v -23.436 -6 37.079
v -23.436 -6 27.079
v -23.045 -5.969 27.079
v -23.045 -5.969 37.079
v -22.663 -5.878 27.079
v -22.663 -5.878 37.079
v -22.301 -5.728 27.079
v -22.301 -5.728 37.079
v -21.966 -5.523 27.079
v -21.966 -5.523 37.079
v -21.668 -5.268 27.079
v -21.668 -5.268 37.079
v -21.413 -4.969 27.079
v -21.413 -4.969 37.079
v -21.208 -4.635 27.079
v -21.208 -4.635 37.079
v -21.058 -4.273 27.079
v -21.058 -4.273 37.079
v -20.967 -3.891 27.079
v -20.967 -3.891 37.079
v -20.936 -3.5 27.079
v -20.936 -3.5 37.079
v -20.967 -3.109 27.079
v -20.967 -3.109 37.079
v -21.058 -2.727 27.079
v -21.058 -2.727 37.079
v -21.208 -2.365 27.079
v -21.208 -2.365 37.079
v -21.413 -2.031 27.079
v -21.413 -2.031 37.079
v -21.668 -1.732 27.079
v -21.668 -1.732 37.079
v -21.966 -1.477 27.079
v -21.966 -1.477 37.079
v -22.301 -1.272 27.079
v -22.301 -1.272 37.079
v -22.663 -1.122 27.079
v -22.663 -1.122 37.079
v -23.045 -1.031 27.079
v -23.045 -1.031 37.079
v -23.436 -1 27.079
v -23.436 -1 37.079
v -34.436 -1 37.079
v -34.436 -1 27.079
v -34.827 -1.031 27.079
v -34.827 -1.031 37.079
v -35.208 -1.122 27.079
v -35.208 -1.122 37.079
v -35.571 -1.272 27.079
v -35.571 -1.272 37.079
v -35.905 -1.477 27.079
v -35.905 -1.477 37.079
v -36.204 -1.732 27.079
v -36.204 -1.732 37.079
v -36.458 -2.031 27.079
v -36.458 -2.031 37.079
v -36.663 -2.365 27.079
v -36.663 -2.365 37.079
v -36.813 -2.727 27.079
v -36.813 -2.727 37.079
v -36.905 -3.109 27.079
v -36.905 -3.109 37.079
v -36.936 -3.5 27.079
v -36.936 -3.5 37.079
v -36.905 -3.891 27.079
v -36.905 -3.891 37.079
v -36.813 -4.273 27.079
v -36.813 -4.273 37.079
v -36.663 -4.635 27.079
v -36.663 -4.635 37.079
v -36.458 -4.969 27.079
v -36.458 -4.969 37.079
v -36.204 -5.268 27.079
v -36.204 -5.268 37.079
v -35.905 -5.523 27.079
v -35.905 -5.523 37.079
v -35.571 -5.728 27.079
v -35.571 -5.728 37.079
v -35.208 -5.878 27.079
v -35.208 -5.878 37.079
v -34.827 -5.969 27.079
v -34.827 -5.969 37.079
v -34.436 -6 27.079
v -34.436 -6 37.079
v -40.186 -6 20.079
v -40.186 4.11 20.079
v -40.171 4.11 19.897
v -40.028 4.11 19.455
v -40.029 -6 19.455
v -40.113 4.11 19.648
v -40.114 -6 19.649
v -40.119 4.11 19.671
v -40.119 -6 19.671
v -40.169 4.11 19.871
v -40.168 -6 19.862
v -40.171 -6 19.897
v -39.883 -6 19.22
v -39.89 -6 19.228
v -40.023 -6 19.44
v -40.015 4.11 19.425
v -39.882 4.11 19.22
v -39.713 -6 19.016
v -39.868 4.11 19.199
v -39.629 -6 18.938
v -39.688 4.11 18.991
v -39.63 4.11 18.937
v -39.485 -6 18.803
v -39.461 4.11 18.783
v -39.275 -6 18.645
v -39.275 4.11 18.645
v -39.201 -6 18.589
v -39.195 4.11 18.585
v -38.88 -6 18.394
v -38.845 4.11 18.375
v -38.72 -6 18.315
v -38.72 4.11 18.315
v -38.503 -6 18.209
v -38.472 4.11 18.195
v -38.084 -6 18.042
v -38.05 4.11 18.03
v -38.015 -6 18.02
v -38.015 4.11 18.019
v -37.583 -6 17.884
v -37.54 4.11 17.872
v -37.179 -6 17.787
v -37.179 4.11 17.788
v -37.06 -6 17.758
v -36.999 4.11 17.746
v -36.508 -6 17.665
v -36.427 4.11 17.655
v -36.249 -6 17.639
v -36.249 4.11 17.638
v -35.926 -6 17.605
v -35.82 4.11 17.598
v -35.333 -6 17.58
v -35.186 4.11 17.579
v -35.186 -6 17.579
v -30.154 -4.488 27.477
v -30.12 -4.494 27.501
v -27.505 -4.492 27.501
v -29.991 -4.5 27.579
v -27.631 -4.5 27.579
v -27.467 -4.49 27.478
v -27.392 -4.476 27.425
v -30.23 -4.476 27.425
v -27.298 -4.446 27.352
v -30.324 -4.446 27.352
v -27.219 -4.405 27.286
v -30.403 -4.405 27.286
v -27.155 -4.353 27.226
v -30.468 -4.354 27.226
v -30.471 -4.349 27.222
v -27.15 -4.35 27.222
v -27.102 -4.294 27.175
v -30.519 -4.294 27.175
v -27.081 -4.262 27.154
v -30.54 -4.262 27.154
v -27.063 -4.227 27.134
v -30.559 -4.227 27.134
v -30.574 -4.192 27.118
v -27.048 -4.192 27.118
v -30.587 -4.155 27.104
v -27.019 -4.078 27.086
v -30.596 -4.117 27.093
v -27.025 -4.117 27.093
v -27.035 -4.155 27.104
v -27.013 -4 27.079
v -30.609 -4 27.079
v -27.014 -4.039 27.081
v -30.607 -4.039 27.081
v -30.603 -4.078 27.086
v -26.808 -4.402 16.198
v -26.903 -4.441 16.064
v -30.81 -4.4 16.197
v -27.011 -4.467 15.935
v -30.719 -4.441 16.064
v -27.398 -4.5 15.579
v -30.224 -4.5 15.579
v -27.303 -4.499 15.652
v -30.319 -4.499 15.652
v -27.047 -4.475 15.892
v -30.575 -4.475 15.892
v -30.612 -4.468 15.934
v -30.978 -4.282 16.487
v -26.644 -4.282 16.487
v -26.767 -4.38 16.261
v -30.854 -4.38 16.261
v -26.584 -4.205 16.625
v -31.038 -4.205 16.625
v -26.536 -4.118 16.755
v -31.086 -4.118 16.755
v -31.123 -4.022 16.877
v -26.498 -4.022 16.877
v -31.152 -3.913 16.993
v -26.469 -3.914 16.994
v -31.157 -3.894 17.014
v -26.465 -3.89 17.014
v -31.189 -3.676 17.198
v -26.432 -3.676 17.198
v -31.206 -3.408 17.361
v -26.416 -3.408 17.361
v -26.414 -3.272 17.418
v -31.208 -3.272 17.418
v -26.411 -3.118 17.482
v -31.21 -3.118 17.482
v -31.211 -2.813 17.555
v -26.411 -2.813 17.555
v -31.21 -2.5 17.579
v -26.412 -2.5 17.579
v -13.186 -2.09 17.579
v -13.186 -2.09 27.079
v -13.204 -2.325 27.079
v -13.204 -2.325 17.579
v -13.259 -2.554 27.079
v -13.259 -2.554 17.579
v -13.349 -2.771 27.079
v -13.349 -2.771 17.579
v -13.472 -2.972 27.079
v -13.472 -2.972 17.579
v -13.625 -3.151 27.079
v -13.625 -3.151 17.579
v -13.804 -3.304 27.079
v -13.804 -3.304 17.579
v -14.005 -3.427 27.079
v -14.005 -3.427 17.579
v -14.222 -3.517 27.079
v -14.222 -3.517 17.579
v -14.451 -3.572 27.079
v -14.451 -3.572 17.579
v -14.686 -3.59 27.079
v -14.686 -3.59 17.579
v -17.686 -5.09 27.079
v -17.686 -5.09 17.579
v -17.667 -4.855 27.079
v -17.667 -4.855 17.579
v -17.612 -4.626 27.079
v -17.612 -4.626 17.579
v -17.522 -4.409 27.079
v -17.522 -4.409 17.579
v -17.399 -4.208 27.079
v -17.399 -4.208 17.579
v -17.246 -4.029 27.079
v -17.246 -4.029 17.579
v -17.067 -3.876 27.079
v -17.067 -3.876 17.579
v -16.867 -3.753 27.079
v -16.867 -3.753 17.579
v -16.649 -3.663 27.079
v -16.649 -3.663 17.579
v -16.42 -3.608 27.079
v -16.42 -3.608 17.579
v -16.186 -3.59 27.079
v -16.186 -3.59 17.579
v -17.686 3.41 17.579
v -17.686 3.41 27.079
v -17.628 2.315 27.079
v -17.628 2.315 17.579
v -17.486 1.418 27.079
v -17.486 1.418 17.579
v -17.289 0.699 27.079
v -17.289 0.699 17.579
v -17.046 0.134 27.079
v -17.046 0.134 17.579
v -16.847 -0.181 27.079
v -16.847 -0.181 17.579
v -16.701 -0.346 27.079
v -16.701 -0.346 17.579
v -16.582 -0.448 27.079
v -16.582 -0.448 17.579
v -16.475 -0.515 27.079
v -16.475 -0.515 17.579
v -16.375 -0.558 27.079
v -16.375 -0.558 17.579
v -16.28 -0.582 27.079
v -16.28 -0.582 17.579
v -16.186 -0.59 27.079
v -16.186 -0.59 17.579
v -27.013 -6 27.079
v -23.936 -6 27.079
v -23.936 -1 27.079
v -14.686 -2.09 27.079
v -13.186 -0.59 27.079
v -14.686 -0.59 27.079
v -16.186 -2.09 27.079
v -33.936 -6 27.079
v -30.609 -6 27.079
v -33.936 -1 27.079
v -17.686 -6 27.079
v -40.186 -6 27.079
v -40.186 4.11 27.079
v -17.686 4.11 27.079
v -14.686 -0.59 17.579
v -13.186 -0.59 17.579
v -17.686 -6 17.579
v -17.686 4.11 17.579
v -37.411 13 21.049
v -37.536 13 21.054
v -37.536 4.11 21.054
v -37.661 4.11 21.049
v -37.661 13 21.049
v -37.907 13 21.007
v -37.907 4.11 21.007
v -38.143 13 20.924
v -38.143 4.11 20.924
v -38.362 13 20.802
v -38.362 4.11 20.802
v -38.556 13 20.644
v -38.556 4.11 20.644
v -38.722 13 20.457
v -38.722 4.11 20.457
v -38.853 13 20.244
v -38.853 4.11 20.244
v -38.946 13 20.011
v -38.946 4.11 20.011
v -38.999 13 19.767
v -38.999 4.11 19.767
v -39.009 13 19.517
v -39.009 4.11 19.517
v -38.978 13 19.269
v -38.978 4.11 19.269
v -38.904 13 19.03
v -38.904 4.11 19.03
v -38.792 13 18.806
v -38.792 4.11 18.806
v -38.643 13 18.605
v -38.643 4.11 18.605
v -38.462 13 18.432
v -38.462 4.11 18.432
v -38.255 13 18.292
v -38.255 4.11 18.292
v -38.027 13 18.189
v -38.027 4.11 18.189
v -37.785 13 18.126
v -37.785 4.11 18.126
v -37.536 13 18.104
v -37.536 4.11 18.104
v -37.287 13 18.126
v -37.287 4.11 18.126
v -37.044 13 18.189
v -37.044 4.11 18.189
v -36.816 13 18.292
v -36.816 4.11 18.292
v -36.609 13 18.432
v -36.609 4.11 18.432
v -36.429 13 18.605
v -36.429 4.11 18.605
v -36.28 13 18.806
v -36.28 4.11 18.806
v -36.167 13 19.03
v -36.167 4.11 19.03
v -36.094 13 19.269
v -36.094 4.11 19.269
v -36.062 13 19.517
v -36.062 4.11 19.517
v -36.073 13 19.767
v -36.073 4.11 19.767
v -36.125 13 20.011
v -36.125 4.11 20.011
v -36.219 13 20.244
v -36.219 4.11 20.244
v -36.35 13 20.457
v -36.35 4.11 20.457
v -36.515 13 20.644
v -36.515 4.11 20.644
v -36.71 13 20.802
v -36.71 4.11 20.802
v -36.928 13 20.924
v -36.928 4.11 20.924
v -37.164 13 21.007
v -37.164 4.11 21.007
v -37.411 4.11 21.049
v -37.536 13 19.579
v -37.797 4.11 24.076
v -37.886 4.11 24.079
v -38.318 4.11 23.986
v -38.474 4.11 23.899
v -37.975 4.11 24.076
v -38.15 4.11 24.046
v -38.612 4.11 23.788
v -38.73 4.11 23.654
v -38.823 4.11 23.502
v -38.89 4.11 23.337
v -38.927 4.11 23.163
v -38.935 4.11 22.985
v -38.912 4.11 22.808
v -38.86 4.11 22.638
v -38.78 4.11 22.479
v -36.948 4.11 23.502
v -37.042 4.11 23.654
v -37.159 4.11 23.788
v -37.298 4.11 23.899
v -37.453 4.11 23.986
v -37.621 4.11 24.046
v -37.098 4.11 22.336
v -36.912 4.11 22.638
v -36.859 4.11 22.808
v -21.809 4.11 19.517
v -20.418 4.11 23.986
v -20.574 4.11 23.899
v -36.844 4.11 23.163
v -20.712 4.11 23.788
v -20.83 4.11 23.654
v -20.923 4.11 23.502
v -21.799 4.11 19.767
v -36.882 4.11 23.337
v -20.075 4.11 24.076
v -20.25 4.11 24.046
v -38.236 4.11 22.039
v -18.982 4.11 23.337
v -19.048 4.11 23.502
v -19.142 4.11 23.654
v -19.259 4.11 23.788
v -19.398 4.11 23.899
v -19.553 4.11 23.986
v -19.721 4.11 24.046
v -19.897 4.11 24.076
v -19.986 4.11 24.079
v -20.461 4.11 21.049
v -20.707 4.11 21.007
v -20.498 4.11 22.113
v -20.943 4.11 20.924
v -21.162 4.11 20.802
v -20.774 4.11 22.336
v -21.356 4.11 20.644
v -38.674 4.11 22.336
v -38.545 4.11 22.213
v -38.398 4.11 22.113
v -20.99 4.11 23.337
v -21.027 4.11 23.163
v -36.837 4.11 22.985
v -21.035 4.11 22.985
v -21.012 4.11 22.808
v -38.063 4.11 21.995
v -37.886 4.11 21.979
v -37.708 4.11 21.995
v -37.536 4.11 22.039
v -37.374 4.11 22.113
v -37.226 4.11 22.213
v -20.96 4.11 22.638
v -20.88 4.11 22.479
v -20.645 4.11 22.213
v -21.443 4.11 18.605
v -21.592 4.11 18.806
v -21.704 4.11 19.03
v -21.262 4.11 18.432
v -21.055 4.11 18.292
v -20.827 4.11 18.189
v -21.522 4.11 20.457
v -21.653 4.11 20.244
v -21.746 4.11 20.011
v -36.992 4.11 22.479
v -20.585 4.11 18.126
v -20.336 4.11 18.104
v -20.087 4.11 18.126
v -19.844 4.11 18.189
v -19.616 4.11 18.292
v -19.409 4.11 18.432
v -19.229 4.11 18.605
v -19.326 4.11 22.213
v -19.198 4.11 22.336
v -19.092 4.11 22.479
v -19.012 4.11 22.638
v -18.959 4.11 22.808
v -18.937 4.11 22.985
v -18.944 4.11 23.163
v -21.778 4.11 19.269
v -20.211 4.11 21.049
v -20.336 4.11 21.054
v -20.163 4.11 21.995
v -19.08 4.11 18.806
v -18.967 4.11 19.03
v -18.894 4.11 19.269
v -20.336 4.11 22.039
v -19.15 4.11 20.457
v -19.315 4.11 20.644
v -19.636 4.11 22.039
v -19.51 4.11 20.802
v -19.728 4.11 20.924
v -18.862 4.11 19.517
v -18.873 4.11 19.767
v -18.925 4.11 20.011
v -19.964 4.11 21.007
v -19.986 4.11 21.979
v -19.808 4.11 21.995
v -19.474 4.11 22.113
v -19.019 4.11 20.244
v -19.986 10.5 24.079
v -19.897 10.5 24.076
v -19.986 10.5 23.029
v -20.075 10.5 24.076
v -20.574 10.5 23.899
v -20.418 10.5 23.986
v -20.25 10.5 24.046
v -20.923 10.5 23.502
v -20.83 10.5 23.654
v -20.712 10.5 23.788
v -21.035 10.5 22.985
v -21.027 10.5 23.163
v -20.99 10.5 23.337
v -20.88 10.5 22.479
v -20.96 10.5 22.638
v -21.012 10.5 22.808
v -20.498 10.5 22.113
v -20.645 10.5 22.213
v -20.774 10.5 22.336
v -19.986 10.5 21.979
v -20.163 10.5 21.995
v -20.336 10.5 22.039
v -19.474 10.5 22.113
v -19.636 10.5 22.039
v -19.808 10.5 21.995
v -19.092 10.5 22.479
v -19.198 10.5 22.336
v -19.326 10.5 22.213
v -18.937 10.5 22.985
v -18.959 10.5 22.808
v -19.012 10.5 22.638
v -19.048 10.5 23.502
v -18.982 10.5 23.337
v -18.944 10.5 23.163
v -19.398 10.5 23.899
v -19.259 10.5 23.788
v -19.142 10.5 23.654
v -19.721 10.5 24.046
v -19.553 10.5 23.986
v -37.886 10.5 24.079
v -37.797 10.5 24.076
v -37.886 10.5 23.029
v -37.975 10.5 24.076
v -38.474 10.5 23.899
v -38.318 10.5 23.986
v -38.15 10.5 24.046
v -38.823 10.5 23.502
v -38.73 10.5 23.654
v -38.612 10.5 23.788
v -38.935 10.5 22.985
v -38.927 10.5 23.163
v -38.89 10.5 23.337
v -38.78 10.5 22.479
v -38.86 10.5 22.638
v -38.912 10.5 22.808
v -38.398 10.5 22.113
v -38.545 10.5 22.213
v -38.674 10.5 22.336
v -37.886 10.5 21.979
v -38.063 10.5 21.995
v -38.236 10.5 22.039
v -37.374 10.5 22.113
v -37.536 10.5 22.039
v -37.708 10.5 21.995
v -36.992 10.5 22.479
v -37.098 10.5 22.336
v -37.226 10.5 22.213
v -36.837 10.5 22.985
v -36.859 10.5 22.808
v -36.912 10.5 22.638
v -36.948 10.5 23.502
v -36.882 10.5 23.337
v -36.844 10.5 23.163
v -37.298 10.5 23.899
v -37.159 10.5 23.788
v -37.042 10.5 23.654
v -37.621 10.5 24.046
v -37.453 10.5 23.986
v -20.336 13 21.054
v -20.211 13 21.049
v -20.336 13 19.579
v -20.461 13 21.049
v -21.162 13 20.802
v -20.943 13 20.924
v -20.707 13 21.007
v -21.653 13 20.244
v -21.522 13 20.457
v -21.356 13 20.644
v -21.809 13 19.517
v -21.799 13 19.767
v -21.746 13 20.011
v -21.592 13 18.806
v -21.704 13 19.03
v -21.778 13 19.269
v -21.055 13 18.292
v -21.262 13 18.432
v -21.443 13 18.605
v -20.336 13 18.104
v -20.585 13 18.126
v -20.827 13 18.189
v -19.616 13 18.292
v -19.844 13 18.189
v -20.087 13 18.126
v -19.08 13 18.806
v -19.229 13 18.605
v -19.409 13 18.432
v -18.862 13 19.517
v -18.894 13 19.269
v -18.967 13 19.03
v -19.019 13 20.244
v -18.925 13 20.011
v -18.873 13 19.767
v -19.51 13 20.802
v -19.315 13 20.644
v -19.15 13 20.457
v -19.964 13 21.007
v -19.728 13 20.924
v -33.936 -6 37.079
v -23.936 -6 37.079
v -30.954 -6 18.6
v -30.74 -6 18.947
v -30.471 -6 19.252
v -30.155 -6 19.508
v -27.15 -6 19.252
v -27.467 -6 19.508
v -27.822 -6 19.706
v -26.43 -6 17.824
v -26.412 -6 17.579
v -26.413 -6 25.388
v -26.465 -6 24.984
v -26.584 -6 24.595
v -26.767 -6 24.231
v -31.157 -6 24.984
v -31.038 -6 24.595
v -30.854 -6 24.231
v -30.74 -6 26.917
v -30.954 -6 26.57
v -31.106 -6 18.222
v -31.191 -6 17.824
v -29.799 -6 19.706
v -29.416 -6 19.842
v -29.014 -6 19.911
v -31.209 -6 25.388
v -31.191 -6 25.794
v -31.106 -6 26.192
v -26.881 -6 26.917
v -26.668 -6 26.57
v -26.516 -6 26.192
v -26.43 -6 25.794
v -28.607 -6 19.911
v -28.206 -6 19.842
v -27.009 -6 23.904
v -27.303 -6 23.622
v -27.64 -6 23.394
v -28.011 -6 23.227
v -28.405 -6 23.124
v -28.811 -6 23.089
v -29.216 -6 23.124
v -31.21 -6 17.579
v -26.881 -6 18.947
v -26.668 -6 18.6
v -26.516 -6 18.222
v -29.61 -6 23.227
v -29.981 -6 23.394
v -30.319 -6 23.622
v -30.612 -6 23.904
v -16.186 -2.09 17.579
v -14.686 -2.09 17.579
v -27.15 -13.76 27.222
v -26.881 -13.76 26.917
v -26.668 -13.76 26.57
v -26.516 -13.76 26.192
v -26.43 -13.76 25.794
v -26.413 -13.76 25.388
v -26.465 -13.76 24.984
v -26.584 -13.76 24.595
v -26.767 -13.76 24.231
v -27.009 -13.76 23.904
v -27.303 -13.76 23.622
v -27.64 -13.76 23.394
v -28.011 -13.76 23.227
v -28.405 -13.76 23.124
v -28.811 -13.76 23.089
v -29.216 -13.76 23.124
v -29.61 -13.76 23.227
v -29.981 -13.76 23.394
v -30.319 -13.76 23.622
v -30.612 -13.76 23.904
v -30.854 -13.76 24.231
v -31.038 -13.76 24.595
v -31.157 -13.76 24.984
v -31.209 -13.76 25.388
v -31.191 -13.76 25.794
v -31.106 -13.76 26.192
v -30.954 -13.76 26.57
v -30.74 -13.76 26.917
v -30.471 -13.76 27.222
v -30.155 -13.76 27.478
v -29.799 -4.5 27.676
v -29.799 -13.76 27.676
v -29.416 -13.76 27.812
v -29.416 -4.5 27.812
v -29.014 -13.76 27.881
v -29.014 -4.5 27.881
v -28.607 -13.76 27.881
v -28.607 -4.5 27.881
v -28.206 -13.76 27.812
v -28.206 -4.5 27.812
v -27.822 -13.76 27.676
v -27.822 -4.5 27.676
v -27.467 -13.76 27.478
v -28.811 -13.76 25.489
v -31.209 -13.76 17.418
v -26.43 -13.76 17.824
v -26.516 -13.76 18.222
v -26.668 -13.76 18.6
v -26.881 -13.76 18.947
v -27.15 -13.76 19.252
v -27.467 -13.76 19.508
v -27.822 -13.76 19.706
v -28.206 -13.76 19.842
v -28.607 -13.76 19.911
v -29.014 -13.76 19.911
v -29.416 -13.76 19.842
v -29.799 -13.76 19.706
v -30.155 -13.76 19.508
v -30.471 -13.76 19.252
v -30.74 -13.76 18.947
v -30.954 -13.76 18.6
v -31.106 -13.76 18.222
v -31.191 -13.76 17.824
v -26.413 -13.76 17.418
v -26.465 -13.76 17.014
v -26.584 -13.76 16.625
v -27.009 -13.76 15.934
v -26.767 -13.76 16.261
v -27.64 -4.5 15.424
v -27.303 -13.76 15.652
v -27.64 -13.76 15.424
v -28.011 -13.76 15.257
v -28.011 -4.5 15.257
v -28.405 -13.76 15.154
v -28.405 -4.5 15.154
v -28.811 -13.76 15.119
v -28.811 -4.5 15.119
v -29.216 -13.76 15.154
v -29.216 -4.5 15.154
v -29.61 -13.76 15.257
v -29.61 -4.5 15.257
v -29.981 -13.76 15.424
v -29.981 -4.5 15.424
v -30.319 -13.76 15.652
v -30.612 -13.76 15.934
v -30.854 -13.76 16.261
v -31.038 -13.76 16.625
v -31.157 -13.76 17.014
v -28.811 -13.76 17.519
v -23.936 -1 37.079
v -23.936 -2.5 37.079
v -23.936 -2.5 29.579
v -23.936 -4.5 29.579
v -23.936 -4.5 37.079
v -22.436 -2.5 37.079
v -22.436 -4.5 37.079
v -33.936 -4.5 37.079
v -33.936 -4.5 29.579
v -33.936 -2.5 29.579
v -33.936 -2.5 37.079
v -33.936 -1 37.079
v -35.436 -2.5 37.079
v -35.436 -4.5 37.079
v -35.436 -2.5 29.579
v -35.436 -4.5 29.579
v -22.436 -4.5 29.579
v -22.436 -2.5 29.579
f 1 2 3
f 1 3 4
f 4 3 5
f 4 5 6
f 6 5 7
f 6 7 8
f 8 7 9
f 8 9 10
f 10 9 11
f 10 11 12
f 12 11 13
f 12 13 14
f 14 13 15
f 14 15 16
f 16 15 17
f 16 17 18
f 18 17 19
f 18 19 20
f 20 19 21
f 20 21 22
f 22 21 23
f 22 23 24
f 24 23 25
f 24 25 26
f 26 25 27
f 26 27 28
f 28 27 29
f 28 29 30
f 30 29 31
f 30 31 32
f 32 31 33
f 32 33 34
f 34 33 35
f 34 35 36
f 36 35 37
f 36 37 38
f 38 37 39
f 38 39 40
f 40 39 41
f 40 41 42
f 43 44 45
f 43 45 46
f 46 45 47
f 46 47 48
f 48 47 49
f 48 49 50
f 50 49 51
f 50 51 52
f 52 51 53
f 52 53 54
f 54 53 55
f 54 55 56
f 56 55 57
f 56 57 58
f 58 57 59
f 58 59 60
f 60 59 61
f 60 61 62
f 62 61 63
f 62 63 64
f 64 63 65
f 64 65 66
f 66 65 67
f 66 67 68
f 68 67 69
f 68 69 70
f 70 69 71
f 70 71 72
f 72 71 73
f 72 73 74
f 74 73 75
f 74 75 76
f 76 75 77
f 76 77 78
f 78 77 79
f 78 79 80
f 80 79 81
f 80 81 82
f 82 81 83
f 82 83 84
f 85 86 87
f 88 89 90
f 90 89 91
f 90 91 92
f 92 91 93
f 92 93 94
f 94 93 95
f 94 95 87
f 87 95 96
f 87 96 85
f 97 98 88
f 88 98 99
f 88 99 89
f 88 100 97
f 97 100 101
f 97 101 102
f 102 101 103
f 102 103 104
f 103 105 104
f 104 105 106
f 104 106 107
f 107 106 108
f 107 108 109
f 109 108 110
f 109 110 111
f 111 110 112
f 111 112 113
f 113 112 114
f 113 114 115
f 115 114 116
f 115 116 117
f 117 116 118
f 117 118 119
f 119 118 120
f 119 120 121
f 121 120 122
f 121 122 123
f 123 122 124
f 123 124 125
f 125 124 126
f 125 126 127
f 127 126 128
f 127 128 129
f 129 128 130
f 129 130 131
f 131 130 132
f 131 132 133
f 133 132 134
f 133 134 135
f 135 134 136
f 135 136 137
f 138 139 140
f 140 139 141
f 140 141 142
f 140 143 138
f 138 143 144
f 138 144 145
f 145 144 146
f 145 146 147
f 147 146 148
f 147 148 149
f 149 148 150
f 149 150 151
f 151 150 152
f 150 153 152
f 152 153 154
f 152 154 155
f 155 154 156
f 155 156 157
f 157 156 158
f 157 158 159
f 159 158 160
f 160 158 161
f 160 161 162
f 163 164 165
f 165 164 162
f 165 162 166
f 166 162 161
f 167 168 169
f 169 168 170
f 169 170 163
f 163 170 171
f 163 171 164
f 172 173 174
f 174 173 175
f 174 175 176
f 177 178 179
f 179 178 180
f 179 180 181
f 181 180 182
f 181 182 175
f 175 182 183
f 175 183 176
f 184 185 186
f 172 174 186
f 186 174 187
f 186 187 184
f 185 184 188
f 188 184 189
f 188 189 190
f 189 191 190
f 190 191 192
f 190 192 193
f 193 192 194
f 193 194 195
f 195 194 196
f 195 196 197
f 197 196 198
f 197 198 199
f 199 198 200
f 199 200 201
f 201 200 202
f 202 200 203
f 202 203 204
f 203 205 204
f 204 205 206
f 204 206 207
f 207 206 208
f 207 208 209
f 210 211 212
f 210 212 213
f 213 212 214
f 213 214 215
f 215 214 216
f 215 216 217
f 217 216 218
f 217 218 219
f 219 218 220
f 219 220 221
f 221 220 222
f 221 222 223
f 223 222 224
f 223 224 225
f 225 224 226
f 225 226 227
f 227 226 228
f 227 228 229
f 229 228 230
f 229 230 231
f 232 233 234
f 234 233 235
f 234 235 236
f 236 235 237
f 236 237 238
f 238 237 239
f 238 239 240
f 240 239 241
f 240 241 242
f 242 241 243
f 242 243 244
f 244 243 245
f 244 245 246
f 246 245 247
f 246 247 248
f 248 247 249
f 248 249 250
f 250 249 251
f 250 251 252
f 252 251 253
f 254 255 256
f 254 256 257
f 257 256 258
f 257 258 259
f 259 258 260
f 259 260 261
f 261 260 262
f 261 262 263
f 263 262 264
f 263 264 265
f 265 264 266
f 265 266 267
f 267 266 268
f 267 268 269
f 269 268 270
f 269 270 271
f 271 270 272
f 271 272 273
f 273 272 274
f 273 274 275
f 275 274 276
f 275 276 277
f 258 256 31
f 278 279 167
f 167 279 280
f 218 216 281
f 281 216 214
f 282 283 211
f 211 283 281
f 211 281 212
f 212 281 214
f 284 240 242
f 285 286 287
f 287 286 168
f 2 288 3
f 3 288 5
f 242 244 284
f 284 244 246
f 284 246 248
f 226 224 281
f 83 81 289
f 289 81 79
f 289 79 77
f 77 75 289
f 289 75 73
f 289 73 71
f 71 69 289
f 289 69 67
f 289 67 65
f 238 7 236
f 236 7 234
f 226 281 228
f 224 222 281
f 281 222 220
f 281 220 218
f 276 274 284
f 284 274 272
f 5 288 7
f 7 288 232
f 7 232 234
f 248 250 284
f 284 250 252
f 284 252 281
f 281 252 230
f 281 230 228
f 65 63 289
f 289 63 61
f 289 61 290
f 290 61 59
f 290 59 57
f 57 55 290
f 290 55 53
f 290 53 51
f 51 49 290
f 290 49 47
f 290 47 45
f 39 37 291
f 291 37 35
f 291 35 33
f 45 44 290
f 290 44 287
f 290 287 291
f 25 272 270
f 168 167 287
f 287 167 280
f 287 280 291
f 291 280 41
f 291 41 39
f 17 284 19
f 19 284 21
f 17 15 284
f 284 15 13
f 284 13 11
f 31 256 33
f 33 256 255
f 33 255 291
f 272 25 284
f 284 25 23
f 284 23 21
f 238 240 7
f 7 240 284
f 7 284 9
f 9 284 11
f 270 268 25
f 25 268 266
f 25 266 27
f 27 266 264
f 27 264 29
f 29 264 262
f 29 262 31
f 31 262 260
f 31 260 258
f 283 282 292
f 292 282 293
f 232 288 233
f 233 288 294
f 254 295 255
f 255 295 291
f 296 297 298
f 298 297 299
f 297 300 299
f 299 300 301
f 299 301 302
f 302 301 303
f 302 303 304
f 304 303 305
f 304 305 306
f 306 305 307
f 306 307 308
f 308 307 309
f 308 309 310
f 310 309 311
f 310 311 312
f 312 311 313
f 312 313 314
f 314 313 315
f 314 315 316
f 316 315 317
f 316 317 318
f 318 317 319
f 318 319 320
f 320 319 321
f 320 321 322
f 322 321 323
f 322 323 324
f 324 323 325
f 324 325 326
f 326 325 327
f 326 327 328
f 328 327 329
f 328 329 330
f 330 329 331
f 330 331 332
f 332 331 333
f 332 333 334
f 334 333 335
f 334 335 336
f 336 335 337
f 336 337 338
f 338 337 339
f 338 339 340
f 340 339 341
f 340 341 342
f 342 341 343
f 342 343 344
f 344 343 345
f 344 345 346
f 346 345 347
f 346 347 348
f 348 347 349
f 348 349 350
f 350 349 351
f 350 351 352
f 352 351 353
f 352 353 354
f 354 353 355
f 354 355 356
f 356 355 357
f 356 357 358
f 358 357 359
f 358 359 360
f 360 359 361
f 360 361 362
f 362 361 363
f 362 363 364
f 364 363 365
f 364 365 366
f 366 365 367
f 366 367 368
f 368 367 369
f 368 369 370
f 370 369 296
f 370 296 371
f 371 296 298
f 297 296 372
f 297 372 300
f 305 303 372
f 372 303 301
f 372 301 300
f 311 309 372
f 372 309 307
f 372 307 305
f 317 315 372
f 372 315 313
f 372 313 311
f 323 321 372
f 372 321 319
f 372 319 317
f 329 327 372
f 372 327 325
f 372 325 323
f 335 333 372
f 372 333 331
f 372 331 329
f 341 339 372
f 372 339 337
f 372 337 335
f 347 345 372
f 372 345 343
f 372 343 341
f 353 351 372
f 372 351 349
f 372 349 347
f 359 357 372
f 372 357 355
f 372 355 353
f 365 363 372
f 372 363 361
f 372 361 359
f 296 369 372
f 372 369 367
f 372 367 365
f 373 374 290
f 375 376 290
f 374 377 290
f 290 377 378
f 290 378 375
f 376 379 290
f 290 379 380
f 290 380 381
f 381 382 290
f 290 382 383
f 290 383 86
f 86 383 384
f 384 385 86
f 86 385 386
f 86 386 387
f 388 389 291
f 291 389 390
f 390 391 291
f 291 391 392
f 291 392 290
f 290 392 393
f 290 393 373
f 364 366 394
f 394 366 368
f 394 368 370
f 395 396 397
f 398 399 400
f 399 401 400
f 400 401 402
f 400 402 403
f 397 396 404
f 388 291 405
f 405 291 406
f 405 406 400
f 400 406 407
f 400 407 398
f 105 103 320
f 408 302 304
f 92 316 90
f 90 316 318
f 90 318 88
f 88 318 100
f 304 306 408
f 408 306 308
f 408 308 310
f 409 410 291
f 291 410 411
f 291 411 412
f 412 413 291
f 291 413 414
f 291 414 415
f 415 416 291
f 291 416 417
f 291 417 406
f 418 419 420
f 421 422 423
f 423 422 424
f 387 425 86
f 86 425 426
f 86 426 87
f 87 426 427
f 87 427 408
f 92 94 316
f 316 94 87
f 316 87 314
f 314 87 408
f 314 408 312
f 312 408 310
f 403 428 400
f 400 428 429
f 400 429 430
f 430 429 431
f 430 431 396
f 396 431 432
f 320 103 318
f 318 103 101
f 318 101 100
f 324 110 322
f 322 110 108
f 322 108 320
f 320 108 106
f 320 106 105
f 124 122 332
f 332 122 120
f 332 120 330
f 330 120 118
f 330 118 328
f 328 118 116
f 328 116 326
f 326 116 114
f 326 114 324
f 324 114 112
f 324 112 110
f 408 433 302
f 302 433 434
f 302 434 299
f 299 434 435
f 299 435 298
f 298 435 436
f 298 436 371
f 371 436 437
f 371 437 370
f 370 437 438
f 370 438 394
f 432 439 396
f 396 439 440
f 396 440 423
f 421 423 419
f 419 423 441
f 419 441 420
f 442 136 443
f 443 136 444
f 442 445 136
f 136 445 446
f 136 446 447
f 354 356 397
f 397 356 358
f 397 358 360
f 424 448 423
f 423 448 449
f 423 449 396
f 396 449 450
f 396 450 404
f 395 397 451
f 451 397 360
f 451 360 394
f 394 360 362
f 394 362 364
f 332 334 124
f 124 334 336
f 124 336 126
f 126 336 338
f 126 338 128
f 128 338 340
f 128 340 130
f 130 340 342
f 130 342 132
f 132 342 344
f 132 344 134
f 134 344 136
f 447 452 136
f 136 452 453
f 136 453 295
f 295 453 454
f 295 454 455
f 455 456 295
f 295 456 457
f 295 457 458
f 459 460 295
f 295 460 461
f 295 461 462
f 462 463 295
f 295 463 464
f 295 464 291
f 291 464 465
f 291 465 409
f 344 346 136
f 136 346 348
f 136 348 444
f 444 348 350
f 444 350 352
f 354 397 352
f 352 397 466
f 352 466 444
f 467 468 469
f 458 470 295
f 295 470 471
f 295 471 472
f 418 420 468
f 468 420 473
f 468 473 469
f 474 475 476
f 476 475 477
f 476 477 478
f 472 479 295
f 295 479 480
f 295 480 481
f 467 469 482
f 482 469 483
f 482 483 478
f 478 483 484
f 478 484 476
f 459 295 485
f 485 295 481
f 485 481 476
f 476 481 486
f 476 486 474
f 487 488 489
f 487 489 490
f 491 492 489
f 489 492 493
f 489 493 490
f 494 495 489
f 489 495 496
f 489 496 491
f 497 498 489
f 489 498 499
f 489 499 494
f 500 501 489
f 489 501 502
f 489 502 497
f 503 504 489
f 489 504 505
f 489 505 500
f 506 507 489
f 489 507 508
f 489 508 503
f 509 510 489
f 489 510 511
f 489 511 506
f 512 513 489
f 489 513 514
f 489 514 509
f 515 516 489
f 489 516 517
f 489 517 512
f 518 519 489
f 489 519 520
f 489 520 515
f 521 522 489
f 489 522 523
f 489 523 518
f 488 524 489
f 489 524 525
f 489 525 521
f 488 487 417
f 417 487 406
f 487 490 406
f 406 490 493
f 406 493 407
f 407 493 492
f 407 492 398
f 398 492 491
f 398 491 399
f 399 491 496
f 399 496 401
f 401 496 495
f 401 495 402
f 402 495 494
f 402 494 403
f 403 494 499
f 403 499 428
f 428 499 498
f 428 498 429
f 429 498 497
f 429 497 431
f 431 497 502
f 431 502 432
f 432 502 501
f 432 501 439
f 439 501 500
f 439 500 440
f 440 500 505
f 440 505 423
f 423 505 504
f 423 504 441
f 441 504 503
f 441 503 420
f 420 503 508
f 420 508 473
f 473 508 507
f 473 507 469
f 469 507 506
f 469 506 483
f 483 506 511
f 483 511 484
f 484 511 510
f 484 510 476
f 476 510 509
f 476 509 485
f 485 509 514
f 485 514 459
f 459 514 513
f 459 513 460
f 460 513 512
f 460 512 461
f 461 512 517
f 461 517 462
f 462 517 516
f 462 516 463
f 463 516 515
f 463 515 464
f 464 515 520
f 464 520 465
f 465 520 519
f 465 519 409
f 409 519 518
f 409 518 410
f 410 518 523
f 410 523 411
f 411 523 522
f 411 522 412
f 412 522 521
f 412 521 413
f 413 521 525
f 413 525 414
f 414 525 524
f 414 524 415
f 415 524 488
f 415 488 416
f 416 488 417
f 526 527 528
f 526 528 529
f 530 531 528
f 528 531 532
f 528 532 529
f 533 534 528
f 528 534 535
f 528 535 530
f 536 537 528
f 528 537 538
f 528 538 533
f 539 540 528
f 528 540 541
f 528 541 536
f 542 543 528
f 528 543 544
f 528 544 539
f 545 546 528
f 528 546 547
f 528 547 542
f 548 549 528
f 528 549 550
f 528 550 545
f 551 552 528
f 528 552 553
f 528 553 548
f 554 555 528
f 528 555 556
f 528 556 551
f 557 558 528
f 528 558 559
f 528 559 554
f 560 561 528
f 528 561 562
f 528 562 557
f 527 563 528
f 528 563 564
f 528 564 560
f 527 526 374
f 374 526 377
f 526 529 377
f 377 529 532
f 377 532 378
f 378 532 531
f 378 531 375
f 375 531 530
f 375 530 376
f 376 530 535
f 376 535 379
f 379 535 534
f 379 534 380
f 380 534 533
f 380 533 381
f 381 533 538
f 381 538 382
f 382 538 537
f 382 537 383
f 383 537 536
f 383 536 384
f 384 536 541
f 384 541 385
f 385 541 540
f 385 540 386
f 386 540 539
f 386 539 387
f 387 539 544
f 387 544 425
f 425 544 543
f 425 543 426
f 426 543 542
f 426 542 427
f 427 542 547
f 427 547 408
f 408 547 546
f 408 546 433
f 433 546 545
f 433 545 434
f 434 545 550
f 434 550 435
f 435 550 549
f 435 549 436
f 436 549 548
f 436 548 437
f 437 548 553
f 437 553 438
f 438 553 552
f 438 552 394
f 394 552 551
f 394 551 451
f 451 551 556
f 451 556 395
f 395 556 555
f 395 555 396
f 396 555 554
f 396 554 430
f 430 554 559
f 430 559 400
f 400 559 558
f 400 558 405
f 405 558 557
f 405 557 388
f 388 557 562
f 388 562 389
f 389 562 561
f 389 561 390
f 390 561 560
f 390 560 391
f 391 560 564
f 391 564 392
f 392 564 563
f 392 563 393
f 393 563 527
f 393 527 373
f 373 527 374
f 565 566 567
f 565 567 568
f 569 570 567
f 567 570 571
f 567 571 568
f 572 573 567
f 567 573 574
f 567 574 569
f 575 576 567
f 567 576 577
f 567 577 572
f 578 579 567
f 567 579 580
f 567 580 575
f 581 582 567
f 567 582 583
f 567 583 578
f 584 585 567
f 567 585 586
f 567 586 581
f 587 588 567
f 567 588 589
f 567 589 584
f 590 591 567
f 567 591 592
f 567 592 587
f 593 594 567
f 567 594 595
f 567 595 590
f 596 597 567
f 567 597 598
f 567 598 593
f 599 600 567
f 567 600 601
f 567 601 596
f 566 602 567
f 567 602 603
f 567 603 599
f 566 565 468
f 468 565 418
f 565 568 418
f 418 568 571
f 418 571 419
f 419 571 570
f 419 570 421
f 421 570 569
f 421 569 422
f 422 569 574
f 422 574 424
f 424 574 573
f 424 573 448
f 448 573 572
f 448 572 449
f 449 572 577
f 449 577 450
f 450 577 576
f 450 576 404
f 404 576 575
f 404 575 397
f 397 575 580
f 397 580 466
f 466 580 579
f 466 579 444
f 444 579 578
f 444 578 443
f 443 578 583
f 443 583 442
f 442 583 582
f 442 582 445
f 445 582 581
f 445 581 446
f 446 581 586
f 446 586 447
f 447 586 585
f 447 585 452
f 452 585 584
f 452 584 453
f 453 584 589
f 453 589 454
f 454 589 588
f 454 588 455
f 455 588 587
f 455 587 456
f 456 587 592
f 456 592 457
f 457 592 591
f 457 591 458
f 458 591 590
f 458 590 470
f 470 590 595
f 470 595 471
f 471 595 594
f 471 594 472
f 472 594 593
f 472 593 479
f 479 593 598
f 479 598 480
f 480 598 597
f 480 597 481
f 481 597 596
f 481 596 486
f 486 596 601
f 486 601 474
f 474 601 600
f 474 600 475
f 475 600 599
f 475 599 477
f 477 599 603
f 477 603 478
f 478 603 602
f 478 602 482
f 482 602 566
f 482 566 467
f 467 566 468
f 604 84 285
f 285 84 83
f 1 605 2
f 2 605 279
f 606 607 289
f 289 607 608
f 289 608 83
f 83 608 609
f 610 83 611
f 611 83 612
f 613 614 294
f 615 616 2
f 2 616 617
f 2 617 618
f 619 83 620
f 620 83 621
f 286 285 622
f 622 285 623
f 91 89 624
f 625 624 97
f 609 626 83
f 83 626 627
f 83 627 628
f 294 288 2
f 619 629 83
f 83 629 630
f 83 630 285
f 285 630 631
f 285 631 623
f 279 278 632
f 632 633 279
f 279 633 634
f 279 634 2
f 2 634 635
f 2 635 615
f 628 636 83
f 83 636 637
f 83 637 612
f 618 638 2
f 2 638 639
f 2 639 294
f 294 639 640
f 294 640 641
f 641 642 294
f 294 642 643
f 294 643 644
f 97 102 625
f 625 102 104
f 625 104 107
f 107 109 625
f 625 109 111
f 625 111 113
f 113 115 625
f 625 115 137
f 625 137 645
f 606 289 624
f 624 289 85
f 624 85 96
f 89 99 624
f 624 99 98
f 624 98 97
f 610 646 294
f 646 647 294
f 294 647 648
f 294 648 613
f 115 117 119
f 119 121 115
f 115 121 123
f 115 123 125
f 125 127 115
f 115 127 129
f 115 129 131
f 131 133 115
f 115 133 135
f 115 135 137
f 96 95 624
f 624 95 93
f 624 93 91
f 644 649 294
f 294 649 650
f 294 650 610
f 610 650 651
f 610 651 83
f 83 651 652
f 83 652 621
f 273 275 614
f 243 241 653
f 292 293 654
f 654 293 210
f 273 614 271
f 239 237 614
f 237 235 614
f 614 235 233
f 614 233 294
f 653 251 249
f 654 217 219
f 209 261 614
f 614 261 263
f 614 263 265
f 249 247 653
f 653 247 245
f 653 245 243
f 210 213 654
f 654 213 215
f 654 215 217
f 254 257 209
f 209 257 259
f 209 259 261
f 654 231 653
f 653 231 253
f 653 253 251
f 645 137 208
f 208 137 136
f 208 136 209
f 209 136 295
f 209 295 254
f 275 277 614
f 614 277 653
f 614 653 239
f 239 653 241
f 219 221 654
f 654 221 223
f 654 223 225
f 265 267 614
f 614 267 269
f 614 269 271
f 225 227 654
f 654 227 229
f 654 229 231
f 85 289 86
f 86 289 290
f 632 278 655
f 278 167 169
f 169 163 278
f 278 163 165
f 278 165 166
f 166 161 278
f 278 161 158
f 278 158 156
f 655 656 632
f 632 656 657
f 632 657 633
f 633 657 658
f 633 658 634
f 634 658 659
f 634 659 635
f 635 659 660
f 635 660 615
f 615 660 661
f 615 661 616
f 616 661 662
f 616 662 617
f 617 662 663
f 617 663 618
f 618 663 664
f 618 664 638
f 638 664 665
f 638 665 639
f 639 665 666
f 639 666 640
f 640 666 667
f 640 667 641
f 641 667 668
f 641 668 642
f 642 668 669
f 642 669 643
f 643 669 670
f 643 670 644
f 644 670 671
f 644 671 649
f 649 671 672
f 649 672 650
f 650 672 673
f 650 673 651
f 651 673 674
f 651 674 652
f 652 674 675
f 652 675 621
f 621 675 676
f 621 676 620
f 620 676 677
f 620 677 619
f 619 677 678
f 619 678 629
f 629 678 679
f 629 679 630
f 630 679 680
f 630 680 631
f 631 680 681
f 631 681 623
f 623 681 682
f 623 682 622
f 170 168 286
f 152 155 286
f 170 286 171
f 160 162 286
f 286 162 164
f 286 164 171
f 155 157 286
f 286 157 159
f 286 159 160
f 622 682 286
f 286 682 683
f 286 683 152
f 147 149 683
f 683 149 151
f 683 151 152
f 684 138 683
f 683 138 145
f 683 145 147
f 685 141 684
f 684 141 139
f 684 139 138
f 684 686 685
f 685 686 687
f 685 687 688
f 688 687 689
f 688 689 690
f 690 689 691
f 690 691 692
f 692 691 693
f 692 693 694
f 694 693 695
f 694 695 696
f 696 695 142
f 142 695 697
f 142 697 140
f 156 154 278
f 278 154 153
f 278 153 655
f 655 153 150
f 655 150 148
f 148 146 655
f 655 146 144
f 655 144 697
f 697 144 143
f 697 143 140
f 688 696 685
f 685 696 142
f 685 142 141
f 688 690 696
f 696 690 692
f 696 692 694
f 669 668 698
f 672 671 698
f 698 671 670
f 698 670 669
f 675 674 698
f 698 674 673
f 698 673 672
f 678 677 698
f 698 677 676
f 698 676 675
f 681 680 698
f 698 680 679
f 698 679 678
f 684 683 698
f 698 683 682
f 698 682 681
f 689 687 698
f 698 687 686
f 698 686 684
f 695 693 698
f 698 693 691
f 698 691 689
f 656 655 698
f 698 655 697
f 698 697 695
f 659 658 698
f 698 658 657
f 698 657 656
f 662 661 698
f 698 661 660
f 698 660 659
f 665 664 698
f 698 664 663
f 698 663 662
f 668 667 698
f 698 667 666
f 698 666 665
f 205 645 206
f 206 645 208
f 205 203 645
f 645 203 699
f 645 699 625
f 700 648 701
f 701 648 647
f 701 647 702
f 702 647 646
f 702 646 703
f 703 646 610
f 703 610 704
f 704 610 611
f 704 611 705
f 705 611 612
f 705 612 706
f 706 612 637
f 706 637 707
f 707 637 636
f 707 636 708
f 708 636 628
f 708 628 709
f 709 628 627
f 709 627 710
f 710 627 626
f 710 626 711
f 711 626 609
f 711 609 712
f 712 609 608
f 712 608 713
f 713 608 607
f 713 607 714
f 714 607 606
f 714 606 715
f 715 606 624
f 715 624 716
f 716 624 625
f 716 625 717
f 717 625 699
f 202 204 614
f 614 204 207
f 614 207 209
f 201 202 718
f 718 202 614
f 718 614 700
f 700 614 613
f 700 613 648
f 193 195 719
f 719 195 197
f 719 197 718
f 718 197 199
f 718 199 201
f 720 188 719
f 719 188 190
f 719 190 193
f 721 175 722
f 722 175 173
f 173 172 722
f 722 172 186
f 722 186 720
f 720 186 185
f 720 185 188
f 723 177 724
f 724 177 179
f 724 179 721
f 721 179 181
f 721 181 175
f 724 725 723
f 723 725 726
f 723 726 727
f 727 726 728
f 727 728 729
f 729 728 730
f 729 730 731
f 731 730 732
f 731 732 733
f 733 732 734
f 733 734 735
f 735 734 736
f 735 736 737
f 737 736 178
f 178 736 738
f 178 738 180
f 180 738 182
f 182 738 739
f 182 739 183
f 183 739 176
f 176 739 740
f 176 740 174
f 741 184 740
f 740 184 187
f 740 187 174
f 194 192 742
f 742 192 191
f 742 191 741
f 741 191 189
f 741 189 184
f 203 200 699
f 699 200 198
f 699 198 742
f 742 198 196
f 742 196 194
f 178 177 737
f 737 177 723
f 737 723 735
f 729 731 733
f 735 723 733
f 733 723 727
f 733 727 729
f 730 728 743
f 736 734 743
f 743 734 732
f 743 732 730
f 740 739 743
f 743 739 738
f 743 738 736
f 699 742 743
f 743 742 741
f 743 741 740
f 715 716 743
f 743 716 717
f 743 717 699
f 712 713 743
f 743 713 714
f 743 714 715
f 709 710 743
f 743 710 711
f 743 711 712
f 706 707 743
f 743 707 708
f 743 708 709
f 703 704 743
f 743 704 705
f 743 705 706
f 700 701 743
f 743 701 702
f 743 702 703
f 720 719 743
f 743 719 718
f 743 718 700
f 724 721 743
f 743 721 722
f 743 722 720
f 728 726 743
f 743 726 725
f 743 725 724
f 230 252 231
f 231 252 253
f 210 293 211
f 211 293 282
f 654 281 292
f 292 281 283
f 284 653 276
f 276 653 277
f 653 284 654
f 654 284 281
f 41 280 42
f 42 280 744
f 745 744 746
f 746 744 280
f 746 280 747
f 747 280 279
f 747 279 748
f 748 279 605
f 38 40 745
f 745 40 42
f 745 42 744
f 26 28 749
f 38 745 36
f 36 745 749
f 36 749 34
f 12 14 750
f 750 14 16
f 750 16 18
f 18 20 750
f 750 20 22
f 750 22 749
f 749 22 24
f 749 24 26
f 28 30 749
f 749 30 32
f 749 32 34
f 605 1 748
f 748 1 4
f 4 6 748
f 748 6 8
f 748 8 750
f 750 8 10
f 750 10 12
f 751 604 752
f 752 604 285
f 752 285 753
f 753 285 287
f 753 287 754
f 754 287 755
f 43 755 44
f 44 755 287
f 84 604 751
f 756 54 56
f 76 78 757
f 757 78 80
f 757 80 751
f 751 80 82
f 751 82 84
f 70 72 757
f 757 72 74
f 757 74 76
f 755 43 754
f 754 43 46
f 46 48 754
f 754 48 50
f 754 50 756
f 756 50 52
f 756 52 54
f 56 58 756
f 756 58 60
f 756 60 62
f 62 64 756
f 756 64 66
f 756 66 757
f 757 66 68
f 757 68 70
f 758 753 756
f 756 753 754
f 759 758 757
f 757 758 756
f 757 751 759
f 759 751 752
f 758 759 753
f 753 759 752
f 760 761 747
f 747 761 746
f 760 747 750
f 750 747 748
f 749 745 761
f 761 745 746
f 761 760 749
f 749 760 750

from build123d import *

# Parameters (mm, degrees)
SKETCH1_W                = 22.5
SKETCH1_H                = 7
BOSS_EXTRUDE1_DEPTH      = 1.5
SKETCH2_R                = 1.475
BOSS_EXTRUDE2_DEPTH      = 11.5
SKETCH3_R                = 1.05
BOSS_EXTRUDE3_DEPTH      = 9
BOSS_EXTRUDE4_DEPTH      = 6
BOSS_EXTRUDE4_DEPTH_BACK = 1.5
SKETCH4_W                = 22.5
SKETCH4_H                = 2.5
SKETCH4_H_2              = 7
SKETCH8_W                = 22.5
SKETCH8_H                = 9.5
BOSS_EXTRUDE7_DEPTH      = 2.61
BOSS_EXTRUDE8_DEPTH      = 7.76
BOSS_EXTRUDE8_DEPTH_BACK = 1.5
SKETCH9_R                = 2.4
SKETCH11_W               = 9.5
SKETCH11_H               = 3
BOSS_EXTRUDE9_DEPTH      = 4.5
SKETCH16_W               = 1.5
SKETCH16_H               = 9.5
CUT_EXTRUDE2_DEPTH       = 1.5
SKETCH19_W               = 3
SKETCH19_H               = 5
BOSS_EXTRUDE10_DEPTH     = 10
SKETCH20_W               = 13
SKETCH20_H               = 2
CUT_EXTRUDE3_DEPTH       = 7.5
FILLET1_SIZE             = 4
FILLET1_SIZE_2           = 1.5
FILLET2_R                = 1.5
FILLET3_R                = 1.5
FILLET4_R                = 2
FILLET5_R                = 0.5
FILLET6_SIZE             = 5
FILLET6_SIZE_2           = 2.5
FILLET7_R                = 2.5
FILLET8_R                = 2.5
FILLET9_R                = 2.5
FILLET10_R               = 2.5


# Some blends are built 0.0001 mm under size
with BuildPart() as part:
    # Sketch1 → Boss-Extrude1 (new body)
    with BuildSketch(Plane(origin=(0, 0, 0), x_dir=(1, 0, 0), z_dir=(0, 1, 0))):
        with Locations((-28.93578967, -21.079480712)):
            Rectangle(SKETCH1_W, SKETCH1_H)
    extrude(amount=BOSS_EXTRUDE1_DEPTH)

    # Sketch2 → Boss-Extrude2 (add)
    with BuildSketch(Plane(origin=(0, 1.5, 0), x_dir=(1, 0, 0), z_dir=(0, 1, 0))):
        with Locations(Location((-37.53578967, -19.579480712, 0), (0, 0, 90))):
            Circle(SKETCH2_R)
        with Locations(Location((-20.33578967, -19.579480712, 0), (0, 0, 90))):
            Circle(SKETCH2_R)
    extrude(amount=BOSS_EXTRUDE2_DEPTH)

    # Sketch3 → Boss-Extrude3 (add)
    with BuildSketch(Plane(origin=(0, 1.5, 0), x_dir=(1, 0, 0), z_dir=(0, 1, 0))):
        with Locations(Location((-37.88578967, -23.029480712, 0), (0, 0, 90))):
            Circle(SKETCH3_R)
        with Locations(Location((-19.98578967, -23.029480712, 0), (0, 0, 90))):
            Circle(SKETCH3_R)
    extrude(amount=BOSS_EXTRUDE3_DEPTH)

    # Sketch4 → Boss-Extrude4 (add, two sides: drawn at the far end of the back side and taken through both)
    with BuildSketch(Plane(origin=(0, 0, 0), x_dir=(-1, 0, 0), z_dir=(0, -1, 0)).offset(-BOSS_EXTRUDE4_DEPTH_BACK)):
        with Locations((28.93578967, -25.829480712)):
            Rectangle(SKETCH4_W, SKETCH4_H)
        with Locations((28.93578967, -21.079480712)):
            Rectangle(SKETCH4_W, SKETCH4_H_2)
    extrude(amount=BOSS_EXTRUDE4_DEPTH + BOSS_EXTRUDE4_DEPTH_BACK)

    # Sketch8 → Boss-Extrude7 (add)
    with BuildSketch(Plane(origin=(0, 1.5, 0), x_dir=(1, 0, 0), z_dir=(0, 1, 0))):
        with Locations((-28.93578967, -22.329480712)):
            Rectangle(SKETCH8_W, SKETCH8_H)
    extrude(amount=BOSS_EXTRUDE7_DEPTH)

    # Sketch9 → Boss-Extrude8 (add, two sides: drawn at the far end of the back side and taken through both)
    with BuildSketch(Plane(origin=(0, -6, 0), x_dir=(-1, 0, 0), z_dir=(0, -1, 0)).offset(-BOSS_EXTRUDE8_DEPTH_BACK)):
        with Locations(Location((28.81078967, -25.489480712, 0), (0, 0, 90))):
            Circle(SKETCH9_R)
        with Locations(Location((28.81078967, -17.519480712, 0), (0, 0, 90))):
            Circle(SKETCH9_R)
    extrude(amount=BOSS_EXTRUDE8_DEPTH + BOSS_EXTRUDE8_DEPTH_BACK)

    # Sketch11 → Boss-Extrude9 (add)
    with BuildSketch(Plane(origin=(-17.68578967, 0, 0), x_dir=(0, 0, -1), z_dir=(1, 0, 0))):
        with Locations((-22.329480712, -2.09)):
            Rectangle(SKETCH11_W, SKETCH11_H)
    extrude(amount=BOSS_EXTRUDE9_DEPTH)

    # Sketch16 → Cut-Extrude2 (cut)
    with BuildSketch(Plane(origin=(0, -0.59, 0), x_dir=(1, 0, 0), z_dir=(0, 1, 0))):
        with Locations((-15.43578967, -22.329480712)):
            Rectangle(SKETCH16_W, SKETCH16_H)
    extrude(amount=-CUT_EXTRUDE2_DEPTH, mode=Mode.SUBTRACT)

    # Sketch19 → Boss-Extrude10 (add)
    with BuildSketch(Plane.XY.offset(27.079480712)):
        with Locations((-22.43578967, -3.5)):
            Rectangle(SKETCH19_W, SKETCH19_H)
        with Locations((-35.43578967, -3.5)):
            Rectangle(SKETCH19_W, SKETCH19_H)
    extrude(amount=BOSS_EXTRUDE10_DEPTH)

    # Sketch20 → Cut-Extrude3 (cut)
    with BuildSketch(Plane.XY.offset(37.079480712)):
        with Locations((-28.93578967, -3.5)):
            Rectangle(SKETCH20_W, SKETCH20_H)
    extrude(amount=-CUT_EXTRUDE3_DEPTH, mode=Mode.SUBTRACT)

    # Fillet1
    # an asymmetric fillet: 4, 1.5 mm, written as the material it adds along each edge
    with BuildSketch(Plane(origin=(-17.68578967, -0.59, 17.579480712), x_dir=(0, 1, 0), z_dir=(0, 0, 1))) as fillet1_piece_1:
        with BuildLine():
            Bezier((FILLET1_SIZE, 0), (0, 0), (0, -FILLET1_SIZE_2), weights=[1, 0.707106781, 1])
            Line((0, -FILLET1_SIZE_2), (0, 0))
            Line((0, 0), (FILLET1_SIZE, 0))
        make_face()
    extrude(amount=9.5)

    # Fillet2
    fillet2_edges = [part.edges().sort_by_distance(p)[0] for p in [
        (-17.68578967, -3.59, 22.329480712),
    ]]
    fillet(fillet2_edges, radius=FILLET2_R)

    # Fillet3
    fillet3_edges = [part.edges().sort_by_distance(p)[0] for p in [
        (-13.18578967, -3.59, 22.329480712),
    ]]
    fillet(fillet3_edges, radius=FILLET3_R)

    # Fillet4
    fillet4_edges = [part.edges().sort_by_distance(p)[0] for p in [
        (-28.81078967, -4.5, 17.579480712),
    ]]
    fillet(fillet4_edges, radius=FILLET4_R)

    # Fillet5
    fillet5_edges = [part.edges().sort_by_distance(p)[0] for p in [
        (-28.81078967, -4.5, 27.079480712),
    ]]
    fillet(fillet5_edges, radius=FILLET5_R)

    # Fillet6
    # an asymmetric fillet: 5, 2.5 mm, written as the material it takes off along each edge
    with BuildSketch(Plane(origin=(-40.18578967, 16.61, 17.579480712), x_dir=(1, 0, 0), z_dir=(0, -1, 0))) as fillet6_piece_1:
        with BuildLine():
            Bezier((FILLET6_SIZE, 0), (0, 0), (0, FILLET6_SIZE_2), weights=[1, 0.707106781, 1])
            Line((0, FILLET6_SIZE_2), (0, 0))
            Line((0, 0), (FILLET6_SIZE, 0))
        make_face()
    extrude(amount=35.11, mode=Mode.SUBTRACT)

    # Fillet7
    fillet7_edges = [part.edges().sort_by_distance(p)[0] for p in [
        (-36.93578967, -6, 32.079480712),
    ]]
    fillet(fillet7_edges, radius=FILLET7_R)

    # Fillet8
    fillet8_edges = [part.edges().sort_by_distance(p)[0] for p in [
        (-36.93578967, -1, 32.079480712),
    ]]
    fillet(fillet8_edges, radius=FILLET8_R - 0.0001)  # a hair under: the kernel refuses the full size

    # Fillet9
    fillet9_edges = [part.edges().sort_by_distance(p)[0] for p in [
        (-20.93578967, -1, 32.079480712),
    ]]
    fillet(fillet9_edges, radius=FILLET9_R)

    # Fillet10
    fillet10_edges = [part.edges().sort_by_distance(p)[0] for p in [
        (-20.93578967, -6, 32.079480712),
    ]]
    fillet(fillet10_edges, radius=FILLET10_R - 0.0001)  # a hair under: the kernel refuses the full size


solid = part.part
